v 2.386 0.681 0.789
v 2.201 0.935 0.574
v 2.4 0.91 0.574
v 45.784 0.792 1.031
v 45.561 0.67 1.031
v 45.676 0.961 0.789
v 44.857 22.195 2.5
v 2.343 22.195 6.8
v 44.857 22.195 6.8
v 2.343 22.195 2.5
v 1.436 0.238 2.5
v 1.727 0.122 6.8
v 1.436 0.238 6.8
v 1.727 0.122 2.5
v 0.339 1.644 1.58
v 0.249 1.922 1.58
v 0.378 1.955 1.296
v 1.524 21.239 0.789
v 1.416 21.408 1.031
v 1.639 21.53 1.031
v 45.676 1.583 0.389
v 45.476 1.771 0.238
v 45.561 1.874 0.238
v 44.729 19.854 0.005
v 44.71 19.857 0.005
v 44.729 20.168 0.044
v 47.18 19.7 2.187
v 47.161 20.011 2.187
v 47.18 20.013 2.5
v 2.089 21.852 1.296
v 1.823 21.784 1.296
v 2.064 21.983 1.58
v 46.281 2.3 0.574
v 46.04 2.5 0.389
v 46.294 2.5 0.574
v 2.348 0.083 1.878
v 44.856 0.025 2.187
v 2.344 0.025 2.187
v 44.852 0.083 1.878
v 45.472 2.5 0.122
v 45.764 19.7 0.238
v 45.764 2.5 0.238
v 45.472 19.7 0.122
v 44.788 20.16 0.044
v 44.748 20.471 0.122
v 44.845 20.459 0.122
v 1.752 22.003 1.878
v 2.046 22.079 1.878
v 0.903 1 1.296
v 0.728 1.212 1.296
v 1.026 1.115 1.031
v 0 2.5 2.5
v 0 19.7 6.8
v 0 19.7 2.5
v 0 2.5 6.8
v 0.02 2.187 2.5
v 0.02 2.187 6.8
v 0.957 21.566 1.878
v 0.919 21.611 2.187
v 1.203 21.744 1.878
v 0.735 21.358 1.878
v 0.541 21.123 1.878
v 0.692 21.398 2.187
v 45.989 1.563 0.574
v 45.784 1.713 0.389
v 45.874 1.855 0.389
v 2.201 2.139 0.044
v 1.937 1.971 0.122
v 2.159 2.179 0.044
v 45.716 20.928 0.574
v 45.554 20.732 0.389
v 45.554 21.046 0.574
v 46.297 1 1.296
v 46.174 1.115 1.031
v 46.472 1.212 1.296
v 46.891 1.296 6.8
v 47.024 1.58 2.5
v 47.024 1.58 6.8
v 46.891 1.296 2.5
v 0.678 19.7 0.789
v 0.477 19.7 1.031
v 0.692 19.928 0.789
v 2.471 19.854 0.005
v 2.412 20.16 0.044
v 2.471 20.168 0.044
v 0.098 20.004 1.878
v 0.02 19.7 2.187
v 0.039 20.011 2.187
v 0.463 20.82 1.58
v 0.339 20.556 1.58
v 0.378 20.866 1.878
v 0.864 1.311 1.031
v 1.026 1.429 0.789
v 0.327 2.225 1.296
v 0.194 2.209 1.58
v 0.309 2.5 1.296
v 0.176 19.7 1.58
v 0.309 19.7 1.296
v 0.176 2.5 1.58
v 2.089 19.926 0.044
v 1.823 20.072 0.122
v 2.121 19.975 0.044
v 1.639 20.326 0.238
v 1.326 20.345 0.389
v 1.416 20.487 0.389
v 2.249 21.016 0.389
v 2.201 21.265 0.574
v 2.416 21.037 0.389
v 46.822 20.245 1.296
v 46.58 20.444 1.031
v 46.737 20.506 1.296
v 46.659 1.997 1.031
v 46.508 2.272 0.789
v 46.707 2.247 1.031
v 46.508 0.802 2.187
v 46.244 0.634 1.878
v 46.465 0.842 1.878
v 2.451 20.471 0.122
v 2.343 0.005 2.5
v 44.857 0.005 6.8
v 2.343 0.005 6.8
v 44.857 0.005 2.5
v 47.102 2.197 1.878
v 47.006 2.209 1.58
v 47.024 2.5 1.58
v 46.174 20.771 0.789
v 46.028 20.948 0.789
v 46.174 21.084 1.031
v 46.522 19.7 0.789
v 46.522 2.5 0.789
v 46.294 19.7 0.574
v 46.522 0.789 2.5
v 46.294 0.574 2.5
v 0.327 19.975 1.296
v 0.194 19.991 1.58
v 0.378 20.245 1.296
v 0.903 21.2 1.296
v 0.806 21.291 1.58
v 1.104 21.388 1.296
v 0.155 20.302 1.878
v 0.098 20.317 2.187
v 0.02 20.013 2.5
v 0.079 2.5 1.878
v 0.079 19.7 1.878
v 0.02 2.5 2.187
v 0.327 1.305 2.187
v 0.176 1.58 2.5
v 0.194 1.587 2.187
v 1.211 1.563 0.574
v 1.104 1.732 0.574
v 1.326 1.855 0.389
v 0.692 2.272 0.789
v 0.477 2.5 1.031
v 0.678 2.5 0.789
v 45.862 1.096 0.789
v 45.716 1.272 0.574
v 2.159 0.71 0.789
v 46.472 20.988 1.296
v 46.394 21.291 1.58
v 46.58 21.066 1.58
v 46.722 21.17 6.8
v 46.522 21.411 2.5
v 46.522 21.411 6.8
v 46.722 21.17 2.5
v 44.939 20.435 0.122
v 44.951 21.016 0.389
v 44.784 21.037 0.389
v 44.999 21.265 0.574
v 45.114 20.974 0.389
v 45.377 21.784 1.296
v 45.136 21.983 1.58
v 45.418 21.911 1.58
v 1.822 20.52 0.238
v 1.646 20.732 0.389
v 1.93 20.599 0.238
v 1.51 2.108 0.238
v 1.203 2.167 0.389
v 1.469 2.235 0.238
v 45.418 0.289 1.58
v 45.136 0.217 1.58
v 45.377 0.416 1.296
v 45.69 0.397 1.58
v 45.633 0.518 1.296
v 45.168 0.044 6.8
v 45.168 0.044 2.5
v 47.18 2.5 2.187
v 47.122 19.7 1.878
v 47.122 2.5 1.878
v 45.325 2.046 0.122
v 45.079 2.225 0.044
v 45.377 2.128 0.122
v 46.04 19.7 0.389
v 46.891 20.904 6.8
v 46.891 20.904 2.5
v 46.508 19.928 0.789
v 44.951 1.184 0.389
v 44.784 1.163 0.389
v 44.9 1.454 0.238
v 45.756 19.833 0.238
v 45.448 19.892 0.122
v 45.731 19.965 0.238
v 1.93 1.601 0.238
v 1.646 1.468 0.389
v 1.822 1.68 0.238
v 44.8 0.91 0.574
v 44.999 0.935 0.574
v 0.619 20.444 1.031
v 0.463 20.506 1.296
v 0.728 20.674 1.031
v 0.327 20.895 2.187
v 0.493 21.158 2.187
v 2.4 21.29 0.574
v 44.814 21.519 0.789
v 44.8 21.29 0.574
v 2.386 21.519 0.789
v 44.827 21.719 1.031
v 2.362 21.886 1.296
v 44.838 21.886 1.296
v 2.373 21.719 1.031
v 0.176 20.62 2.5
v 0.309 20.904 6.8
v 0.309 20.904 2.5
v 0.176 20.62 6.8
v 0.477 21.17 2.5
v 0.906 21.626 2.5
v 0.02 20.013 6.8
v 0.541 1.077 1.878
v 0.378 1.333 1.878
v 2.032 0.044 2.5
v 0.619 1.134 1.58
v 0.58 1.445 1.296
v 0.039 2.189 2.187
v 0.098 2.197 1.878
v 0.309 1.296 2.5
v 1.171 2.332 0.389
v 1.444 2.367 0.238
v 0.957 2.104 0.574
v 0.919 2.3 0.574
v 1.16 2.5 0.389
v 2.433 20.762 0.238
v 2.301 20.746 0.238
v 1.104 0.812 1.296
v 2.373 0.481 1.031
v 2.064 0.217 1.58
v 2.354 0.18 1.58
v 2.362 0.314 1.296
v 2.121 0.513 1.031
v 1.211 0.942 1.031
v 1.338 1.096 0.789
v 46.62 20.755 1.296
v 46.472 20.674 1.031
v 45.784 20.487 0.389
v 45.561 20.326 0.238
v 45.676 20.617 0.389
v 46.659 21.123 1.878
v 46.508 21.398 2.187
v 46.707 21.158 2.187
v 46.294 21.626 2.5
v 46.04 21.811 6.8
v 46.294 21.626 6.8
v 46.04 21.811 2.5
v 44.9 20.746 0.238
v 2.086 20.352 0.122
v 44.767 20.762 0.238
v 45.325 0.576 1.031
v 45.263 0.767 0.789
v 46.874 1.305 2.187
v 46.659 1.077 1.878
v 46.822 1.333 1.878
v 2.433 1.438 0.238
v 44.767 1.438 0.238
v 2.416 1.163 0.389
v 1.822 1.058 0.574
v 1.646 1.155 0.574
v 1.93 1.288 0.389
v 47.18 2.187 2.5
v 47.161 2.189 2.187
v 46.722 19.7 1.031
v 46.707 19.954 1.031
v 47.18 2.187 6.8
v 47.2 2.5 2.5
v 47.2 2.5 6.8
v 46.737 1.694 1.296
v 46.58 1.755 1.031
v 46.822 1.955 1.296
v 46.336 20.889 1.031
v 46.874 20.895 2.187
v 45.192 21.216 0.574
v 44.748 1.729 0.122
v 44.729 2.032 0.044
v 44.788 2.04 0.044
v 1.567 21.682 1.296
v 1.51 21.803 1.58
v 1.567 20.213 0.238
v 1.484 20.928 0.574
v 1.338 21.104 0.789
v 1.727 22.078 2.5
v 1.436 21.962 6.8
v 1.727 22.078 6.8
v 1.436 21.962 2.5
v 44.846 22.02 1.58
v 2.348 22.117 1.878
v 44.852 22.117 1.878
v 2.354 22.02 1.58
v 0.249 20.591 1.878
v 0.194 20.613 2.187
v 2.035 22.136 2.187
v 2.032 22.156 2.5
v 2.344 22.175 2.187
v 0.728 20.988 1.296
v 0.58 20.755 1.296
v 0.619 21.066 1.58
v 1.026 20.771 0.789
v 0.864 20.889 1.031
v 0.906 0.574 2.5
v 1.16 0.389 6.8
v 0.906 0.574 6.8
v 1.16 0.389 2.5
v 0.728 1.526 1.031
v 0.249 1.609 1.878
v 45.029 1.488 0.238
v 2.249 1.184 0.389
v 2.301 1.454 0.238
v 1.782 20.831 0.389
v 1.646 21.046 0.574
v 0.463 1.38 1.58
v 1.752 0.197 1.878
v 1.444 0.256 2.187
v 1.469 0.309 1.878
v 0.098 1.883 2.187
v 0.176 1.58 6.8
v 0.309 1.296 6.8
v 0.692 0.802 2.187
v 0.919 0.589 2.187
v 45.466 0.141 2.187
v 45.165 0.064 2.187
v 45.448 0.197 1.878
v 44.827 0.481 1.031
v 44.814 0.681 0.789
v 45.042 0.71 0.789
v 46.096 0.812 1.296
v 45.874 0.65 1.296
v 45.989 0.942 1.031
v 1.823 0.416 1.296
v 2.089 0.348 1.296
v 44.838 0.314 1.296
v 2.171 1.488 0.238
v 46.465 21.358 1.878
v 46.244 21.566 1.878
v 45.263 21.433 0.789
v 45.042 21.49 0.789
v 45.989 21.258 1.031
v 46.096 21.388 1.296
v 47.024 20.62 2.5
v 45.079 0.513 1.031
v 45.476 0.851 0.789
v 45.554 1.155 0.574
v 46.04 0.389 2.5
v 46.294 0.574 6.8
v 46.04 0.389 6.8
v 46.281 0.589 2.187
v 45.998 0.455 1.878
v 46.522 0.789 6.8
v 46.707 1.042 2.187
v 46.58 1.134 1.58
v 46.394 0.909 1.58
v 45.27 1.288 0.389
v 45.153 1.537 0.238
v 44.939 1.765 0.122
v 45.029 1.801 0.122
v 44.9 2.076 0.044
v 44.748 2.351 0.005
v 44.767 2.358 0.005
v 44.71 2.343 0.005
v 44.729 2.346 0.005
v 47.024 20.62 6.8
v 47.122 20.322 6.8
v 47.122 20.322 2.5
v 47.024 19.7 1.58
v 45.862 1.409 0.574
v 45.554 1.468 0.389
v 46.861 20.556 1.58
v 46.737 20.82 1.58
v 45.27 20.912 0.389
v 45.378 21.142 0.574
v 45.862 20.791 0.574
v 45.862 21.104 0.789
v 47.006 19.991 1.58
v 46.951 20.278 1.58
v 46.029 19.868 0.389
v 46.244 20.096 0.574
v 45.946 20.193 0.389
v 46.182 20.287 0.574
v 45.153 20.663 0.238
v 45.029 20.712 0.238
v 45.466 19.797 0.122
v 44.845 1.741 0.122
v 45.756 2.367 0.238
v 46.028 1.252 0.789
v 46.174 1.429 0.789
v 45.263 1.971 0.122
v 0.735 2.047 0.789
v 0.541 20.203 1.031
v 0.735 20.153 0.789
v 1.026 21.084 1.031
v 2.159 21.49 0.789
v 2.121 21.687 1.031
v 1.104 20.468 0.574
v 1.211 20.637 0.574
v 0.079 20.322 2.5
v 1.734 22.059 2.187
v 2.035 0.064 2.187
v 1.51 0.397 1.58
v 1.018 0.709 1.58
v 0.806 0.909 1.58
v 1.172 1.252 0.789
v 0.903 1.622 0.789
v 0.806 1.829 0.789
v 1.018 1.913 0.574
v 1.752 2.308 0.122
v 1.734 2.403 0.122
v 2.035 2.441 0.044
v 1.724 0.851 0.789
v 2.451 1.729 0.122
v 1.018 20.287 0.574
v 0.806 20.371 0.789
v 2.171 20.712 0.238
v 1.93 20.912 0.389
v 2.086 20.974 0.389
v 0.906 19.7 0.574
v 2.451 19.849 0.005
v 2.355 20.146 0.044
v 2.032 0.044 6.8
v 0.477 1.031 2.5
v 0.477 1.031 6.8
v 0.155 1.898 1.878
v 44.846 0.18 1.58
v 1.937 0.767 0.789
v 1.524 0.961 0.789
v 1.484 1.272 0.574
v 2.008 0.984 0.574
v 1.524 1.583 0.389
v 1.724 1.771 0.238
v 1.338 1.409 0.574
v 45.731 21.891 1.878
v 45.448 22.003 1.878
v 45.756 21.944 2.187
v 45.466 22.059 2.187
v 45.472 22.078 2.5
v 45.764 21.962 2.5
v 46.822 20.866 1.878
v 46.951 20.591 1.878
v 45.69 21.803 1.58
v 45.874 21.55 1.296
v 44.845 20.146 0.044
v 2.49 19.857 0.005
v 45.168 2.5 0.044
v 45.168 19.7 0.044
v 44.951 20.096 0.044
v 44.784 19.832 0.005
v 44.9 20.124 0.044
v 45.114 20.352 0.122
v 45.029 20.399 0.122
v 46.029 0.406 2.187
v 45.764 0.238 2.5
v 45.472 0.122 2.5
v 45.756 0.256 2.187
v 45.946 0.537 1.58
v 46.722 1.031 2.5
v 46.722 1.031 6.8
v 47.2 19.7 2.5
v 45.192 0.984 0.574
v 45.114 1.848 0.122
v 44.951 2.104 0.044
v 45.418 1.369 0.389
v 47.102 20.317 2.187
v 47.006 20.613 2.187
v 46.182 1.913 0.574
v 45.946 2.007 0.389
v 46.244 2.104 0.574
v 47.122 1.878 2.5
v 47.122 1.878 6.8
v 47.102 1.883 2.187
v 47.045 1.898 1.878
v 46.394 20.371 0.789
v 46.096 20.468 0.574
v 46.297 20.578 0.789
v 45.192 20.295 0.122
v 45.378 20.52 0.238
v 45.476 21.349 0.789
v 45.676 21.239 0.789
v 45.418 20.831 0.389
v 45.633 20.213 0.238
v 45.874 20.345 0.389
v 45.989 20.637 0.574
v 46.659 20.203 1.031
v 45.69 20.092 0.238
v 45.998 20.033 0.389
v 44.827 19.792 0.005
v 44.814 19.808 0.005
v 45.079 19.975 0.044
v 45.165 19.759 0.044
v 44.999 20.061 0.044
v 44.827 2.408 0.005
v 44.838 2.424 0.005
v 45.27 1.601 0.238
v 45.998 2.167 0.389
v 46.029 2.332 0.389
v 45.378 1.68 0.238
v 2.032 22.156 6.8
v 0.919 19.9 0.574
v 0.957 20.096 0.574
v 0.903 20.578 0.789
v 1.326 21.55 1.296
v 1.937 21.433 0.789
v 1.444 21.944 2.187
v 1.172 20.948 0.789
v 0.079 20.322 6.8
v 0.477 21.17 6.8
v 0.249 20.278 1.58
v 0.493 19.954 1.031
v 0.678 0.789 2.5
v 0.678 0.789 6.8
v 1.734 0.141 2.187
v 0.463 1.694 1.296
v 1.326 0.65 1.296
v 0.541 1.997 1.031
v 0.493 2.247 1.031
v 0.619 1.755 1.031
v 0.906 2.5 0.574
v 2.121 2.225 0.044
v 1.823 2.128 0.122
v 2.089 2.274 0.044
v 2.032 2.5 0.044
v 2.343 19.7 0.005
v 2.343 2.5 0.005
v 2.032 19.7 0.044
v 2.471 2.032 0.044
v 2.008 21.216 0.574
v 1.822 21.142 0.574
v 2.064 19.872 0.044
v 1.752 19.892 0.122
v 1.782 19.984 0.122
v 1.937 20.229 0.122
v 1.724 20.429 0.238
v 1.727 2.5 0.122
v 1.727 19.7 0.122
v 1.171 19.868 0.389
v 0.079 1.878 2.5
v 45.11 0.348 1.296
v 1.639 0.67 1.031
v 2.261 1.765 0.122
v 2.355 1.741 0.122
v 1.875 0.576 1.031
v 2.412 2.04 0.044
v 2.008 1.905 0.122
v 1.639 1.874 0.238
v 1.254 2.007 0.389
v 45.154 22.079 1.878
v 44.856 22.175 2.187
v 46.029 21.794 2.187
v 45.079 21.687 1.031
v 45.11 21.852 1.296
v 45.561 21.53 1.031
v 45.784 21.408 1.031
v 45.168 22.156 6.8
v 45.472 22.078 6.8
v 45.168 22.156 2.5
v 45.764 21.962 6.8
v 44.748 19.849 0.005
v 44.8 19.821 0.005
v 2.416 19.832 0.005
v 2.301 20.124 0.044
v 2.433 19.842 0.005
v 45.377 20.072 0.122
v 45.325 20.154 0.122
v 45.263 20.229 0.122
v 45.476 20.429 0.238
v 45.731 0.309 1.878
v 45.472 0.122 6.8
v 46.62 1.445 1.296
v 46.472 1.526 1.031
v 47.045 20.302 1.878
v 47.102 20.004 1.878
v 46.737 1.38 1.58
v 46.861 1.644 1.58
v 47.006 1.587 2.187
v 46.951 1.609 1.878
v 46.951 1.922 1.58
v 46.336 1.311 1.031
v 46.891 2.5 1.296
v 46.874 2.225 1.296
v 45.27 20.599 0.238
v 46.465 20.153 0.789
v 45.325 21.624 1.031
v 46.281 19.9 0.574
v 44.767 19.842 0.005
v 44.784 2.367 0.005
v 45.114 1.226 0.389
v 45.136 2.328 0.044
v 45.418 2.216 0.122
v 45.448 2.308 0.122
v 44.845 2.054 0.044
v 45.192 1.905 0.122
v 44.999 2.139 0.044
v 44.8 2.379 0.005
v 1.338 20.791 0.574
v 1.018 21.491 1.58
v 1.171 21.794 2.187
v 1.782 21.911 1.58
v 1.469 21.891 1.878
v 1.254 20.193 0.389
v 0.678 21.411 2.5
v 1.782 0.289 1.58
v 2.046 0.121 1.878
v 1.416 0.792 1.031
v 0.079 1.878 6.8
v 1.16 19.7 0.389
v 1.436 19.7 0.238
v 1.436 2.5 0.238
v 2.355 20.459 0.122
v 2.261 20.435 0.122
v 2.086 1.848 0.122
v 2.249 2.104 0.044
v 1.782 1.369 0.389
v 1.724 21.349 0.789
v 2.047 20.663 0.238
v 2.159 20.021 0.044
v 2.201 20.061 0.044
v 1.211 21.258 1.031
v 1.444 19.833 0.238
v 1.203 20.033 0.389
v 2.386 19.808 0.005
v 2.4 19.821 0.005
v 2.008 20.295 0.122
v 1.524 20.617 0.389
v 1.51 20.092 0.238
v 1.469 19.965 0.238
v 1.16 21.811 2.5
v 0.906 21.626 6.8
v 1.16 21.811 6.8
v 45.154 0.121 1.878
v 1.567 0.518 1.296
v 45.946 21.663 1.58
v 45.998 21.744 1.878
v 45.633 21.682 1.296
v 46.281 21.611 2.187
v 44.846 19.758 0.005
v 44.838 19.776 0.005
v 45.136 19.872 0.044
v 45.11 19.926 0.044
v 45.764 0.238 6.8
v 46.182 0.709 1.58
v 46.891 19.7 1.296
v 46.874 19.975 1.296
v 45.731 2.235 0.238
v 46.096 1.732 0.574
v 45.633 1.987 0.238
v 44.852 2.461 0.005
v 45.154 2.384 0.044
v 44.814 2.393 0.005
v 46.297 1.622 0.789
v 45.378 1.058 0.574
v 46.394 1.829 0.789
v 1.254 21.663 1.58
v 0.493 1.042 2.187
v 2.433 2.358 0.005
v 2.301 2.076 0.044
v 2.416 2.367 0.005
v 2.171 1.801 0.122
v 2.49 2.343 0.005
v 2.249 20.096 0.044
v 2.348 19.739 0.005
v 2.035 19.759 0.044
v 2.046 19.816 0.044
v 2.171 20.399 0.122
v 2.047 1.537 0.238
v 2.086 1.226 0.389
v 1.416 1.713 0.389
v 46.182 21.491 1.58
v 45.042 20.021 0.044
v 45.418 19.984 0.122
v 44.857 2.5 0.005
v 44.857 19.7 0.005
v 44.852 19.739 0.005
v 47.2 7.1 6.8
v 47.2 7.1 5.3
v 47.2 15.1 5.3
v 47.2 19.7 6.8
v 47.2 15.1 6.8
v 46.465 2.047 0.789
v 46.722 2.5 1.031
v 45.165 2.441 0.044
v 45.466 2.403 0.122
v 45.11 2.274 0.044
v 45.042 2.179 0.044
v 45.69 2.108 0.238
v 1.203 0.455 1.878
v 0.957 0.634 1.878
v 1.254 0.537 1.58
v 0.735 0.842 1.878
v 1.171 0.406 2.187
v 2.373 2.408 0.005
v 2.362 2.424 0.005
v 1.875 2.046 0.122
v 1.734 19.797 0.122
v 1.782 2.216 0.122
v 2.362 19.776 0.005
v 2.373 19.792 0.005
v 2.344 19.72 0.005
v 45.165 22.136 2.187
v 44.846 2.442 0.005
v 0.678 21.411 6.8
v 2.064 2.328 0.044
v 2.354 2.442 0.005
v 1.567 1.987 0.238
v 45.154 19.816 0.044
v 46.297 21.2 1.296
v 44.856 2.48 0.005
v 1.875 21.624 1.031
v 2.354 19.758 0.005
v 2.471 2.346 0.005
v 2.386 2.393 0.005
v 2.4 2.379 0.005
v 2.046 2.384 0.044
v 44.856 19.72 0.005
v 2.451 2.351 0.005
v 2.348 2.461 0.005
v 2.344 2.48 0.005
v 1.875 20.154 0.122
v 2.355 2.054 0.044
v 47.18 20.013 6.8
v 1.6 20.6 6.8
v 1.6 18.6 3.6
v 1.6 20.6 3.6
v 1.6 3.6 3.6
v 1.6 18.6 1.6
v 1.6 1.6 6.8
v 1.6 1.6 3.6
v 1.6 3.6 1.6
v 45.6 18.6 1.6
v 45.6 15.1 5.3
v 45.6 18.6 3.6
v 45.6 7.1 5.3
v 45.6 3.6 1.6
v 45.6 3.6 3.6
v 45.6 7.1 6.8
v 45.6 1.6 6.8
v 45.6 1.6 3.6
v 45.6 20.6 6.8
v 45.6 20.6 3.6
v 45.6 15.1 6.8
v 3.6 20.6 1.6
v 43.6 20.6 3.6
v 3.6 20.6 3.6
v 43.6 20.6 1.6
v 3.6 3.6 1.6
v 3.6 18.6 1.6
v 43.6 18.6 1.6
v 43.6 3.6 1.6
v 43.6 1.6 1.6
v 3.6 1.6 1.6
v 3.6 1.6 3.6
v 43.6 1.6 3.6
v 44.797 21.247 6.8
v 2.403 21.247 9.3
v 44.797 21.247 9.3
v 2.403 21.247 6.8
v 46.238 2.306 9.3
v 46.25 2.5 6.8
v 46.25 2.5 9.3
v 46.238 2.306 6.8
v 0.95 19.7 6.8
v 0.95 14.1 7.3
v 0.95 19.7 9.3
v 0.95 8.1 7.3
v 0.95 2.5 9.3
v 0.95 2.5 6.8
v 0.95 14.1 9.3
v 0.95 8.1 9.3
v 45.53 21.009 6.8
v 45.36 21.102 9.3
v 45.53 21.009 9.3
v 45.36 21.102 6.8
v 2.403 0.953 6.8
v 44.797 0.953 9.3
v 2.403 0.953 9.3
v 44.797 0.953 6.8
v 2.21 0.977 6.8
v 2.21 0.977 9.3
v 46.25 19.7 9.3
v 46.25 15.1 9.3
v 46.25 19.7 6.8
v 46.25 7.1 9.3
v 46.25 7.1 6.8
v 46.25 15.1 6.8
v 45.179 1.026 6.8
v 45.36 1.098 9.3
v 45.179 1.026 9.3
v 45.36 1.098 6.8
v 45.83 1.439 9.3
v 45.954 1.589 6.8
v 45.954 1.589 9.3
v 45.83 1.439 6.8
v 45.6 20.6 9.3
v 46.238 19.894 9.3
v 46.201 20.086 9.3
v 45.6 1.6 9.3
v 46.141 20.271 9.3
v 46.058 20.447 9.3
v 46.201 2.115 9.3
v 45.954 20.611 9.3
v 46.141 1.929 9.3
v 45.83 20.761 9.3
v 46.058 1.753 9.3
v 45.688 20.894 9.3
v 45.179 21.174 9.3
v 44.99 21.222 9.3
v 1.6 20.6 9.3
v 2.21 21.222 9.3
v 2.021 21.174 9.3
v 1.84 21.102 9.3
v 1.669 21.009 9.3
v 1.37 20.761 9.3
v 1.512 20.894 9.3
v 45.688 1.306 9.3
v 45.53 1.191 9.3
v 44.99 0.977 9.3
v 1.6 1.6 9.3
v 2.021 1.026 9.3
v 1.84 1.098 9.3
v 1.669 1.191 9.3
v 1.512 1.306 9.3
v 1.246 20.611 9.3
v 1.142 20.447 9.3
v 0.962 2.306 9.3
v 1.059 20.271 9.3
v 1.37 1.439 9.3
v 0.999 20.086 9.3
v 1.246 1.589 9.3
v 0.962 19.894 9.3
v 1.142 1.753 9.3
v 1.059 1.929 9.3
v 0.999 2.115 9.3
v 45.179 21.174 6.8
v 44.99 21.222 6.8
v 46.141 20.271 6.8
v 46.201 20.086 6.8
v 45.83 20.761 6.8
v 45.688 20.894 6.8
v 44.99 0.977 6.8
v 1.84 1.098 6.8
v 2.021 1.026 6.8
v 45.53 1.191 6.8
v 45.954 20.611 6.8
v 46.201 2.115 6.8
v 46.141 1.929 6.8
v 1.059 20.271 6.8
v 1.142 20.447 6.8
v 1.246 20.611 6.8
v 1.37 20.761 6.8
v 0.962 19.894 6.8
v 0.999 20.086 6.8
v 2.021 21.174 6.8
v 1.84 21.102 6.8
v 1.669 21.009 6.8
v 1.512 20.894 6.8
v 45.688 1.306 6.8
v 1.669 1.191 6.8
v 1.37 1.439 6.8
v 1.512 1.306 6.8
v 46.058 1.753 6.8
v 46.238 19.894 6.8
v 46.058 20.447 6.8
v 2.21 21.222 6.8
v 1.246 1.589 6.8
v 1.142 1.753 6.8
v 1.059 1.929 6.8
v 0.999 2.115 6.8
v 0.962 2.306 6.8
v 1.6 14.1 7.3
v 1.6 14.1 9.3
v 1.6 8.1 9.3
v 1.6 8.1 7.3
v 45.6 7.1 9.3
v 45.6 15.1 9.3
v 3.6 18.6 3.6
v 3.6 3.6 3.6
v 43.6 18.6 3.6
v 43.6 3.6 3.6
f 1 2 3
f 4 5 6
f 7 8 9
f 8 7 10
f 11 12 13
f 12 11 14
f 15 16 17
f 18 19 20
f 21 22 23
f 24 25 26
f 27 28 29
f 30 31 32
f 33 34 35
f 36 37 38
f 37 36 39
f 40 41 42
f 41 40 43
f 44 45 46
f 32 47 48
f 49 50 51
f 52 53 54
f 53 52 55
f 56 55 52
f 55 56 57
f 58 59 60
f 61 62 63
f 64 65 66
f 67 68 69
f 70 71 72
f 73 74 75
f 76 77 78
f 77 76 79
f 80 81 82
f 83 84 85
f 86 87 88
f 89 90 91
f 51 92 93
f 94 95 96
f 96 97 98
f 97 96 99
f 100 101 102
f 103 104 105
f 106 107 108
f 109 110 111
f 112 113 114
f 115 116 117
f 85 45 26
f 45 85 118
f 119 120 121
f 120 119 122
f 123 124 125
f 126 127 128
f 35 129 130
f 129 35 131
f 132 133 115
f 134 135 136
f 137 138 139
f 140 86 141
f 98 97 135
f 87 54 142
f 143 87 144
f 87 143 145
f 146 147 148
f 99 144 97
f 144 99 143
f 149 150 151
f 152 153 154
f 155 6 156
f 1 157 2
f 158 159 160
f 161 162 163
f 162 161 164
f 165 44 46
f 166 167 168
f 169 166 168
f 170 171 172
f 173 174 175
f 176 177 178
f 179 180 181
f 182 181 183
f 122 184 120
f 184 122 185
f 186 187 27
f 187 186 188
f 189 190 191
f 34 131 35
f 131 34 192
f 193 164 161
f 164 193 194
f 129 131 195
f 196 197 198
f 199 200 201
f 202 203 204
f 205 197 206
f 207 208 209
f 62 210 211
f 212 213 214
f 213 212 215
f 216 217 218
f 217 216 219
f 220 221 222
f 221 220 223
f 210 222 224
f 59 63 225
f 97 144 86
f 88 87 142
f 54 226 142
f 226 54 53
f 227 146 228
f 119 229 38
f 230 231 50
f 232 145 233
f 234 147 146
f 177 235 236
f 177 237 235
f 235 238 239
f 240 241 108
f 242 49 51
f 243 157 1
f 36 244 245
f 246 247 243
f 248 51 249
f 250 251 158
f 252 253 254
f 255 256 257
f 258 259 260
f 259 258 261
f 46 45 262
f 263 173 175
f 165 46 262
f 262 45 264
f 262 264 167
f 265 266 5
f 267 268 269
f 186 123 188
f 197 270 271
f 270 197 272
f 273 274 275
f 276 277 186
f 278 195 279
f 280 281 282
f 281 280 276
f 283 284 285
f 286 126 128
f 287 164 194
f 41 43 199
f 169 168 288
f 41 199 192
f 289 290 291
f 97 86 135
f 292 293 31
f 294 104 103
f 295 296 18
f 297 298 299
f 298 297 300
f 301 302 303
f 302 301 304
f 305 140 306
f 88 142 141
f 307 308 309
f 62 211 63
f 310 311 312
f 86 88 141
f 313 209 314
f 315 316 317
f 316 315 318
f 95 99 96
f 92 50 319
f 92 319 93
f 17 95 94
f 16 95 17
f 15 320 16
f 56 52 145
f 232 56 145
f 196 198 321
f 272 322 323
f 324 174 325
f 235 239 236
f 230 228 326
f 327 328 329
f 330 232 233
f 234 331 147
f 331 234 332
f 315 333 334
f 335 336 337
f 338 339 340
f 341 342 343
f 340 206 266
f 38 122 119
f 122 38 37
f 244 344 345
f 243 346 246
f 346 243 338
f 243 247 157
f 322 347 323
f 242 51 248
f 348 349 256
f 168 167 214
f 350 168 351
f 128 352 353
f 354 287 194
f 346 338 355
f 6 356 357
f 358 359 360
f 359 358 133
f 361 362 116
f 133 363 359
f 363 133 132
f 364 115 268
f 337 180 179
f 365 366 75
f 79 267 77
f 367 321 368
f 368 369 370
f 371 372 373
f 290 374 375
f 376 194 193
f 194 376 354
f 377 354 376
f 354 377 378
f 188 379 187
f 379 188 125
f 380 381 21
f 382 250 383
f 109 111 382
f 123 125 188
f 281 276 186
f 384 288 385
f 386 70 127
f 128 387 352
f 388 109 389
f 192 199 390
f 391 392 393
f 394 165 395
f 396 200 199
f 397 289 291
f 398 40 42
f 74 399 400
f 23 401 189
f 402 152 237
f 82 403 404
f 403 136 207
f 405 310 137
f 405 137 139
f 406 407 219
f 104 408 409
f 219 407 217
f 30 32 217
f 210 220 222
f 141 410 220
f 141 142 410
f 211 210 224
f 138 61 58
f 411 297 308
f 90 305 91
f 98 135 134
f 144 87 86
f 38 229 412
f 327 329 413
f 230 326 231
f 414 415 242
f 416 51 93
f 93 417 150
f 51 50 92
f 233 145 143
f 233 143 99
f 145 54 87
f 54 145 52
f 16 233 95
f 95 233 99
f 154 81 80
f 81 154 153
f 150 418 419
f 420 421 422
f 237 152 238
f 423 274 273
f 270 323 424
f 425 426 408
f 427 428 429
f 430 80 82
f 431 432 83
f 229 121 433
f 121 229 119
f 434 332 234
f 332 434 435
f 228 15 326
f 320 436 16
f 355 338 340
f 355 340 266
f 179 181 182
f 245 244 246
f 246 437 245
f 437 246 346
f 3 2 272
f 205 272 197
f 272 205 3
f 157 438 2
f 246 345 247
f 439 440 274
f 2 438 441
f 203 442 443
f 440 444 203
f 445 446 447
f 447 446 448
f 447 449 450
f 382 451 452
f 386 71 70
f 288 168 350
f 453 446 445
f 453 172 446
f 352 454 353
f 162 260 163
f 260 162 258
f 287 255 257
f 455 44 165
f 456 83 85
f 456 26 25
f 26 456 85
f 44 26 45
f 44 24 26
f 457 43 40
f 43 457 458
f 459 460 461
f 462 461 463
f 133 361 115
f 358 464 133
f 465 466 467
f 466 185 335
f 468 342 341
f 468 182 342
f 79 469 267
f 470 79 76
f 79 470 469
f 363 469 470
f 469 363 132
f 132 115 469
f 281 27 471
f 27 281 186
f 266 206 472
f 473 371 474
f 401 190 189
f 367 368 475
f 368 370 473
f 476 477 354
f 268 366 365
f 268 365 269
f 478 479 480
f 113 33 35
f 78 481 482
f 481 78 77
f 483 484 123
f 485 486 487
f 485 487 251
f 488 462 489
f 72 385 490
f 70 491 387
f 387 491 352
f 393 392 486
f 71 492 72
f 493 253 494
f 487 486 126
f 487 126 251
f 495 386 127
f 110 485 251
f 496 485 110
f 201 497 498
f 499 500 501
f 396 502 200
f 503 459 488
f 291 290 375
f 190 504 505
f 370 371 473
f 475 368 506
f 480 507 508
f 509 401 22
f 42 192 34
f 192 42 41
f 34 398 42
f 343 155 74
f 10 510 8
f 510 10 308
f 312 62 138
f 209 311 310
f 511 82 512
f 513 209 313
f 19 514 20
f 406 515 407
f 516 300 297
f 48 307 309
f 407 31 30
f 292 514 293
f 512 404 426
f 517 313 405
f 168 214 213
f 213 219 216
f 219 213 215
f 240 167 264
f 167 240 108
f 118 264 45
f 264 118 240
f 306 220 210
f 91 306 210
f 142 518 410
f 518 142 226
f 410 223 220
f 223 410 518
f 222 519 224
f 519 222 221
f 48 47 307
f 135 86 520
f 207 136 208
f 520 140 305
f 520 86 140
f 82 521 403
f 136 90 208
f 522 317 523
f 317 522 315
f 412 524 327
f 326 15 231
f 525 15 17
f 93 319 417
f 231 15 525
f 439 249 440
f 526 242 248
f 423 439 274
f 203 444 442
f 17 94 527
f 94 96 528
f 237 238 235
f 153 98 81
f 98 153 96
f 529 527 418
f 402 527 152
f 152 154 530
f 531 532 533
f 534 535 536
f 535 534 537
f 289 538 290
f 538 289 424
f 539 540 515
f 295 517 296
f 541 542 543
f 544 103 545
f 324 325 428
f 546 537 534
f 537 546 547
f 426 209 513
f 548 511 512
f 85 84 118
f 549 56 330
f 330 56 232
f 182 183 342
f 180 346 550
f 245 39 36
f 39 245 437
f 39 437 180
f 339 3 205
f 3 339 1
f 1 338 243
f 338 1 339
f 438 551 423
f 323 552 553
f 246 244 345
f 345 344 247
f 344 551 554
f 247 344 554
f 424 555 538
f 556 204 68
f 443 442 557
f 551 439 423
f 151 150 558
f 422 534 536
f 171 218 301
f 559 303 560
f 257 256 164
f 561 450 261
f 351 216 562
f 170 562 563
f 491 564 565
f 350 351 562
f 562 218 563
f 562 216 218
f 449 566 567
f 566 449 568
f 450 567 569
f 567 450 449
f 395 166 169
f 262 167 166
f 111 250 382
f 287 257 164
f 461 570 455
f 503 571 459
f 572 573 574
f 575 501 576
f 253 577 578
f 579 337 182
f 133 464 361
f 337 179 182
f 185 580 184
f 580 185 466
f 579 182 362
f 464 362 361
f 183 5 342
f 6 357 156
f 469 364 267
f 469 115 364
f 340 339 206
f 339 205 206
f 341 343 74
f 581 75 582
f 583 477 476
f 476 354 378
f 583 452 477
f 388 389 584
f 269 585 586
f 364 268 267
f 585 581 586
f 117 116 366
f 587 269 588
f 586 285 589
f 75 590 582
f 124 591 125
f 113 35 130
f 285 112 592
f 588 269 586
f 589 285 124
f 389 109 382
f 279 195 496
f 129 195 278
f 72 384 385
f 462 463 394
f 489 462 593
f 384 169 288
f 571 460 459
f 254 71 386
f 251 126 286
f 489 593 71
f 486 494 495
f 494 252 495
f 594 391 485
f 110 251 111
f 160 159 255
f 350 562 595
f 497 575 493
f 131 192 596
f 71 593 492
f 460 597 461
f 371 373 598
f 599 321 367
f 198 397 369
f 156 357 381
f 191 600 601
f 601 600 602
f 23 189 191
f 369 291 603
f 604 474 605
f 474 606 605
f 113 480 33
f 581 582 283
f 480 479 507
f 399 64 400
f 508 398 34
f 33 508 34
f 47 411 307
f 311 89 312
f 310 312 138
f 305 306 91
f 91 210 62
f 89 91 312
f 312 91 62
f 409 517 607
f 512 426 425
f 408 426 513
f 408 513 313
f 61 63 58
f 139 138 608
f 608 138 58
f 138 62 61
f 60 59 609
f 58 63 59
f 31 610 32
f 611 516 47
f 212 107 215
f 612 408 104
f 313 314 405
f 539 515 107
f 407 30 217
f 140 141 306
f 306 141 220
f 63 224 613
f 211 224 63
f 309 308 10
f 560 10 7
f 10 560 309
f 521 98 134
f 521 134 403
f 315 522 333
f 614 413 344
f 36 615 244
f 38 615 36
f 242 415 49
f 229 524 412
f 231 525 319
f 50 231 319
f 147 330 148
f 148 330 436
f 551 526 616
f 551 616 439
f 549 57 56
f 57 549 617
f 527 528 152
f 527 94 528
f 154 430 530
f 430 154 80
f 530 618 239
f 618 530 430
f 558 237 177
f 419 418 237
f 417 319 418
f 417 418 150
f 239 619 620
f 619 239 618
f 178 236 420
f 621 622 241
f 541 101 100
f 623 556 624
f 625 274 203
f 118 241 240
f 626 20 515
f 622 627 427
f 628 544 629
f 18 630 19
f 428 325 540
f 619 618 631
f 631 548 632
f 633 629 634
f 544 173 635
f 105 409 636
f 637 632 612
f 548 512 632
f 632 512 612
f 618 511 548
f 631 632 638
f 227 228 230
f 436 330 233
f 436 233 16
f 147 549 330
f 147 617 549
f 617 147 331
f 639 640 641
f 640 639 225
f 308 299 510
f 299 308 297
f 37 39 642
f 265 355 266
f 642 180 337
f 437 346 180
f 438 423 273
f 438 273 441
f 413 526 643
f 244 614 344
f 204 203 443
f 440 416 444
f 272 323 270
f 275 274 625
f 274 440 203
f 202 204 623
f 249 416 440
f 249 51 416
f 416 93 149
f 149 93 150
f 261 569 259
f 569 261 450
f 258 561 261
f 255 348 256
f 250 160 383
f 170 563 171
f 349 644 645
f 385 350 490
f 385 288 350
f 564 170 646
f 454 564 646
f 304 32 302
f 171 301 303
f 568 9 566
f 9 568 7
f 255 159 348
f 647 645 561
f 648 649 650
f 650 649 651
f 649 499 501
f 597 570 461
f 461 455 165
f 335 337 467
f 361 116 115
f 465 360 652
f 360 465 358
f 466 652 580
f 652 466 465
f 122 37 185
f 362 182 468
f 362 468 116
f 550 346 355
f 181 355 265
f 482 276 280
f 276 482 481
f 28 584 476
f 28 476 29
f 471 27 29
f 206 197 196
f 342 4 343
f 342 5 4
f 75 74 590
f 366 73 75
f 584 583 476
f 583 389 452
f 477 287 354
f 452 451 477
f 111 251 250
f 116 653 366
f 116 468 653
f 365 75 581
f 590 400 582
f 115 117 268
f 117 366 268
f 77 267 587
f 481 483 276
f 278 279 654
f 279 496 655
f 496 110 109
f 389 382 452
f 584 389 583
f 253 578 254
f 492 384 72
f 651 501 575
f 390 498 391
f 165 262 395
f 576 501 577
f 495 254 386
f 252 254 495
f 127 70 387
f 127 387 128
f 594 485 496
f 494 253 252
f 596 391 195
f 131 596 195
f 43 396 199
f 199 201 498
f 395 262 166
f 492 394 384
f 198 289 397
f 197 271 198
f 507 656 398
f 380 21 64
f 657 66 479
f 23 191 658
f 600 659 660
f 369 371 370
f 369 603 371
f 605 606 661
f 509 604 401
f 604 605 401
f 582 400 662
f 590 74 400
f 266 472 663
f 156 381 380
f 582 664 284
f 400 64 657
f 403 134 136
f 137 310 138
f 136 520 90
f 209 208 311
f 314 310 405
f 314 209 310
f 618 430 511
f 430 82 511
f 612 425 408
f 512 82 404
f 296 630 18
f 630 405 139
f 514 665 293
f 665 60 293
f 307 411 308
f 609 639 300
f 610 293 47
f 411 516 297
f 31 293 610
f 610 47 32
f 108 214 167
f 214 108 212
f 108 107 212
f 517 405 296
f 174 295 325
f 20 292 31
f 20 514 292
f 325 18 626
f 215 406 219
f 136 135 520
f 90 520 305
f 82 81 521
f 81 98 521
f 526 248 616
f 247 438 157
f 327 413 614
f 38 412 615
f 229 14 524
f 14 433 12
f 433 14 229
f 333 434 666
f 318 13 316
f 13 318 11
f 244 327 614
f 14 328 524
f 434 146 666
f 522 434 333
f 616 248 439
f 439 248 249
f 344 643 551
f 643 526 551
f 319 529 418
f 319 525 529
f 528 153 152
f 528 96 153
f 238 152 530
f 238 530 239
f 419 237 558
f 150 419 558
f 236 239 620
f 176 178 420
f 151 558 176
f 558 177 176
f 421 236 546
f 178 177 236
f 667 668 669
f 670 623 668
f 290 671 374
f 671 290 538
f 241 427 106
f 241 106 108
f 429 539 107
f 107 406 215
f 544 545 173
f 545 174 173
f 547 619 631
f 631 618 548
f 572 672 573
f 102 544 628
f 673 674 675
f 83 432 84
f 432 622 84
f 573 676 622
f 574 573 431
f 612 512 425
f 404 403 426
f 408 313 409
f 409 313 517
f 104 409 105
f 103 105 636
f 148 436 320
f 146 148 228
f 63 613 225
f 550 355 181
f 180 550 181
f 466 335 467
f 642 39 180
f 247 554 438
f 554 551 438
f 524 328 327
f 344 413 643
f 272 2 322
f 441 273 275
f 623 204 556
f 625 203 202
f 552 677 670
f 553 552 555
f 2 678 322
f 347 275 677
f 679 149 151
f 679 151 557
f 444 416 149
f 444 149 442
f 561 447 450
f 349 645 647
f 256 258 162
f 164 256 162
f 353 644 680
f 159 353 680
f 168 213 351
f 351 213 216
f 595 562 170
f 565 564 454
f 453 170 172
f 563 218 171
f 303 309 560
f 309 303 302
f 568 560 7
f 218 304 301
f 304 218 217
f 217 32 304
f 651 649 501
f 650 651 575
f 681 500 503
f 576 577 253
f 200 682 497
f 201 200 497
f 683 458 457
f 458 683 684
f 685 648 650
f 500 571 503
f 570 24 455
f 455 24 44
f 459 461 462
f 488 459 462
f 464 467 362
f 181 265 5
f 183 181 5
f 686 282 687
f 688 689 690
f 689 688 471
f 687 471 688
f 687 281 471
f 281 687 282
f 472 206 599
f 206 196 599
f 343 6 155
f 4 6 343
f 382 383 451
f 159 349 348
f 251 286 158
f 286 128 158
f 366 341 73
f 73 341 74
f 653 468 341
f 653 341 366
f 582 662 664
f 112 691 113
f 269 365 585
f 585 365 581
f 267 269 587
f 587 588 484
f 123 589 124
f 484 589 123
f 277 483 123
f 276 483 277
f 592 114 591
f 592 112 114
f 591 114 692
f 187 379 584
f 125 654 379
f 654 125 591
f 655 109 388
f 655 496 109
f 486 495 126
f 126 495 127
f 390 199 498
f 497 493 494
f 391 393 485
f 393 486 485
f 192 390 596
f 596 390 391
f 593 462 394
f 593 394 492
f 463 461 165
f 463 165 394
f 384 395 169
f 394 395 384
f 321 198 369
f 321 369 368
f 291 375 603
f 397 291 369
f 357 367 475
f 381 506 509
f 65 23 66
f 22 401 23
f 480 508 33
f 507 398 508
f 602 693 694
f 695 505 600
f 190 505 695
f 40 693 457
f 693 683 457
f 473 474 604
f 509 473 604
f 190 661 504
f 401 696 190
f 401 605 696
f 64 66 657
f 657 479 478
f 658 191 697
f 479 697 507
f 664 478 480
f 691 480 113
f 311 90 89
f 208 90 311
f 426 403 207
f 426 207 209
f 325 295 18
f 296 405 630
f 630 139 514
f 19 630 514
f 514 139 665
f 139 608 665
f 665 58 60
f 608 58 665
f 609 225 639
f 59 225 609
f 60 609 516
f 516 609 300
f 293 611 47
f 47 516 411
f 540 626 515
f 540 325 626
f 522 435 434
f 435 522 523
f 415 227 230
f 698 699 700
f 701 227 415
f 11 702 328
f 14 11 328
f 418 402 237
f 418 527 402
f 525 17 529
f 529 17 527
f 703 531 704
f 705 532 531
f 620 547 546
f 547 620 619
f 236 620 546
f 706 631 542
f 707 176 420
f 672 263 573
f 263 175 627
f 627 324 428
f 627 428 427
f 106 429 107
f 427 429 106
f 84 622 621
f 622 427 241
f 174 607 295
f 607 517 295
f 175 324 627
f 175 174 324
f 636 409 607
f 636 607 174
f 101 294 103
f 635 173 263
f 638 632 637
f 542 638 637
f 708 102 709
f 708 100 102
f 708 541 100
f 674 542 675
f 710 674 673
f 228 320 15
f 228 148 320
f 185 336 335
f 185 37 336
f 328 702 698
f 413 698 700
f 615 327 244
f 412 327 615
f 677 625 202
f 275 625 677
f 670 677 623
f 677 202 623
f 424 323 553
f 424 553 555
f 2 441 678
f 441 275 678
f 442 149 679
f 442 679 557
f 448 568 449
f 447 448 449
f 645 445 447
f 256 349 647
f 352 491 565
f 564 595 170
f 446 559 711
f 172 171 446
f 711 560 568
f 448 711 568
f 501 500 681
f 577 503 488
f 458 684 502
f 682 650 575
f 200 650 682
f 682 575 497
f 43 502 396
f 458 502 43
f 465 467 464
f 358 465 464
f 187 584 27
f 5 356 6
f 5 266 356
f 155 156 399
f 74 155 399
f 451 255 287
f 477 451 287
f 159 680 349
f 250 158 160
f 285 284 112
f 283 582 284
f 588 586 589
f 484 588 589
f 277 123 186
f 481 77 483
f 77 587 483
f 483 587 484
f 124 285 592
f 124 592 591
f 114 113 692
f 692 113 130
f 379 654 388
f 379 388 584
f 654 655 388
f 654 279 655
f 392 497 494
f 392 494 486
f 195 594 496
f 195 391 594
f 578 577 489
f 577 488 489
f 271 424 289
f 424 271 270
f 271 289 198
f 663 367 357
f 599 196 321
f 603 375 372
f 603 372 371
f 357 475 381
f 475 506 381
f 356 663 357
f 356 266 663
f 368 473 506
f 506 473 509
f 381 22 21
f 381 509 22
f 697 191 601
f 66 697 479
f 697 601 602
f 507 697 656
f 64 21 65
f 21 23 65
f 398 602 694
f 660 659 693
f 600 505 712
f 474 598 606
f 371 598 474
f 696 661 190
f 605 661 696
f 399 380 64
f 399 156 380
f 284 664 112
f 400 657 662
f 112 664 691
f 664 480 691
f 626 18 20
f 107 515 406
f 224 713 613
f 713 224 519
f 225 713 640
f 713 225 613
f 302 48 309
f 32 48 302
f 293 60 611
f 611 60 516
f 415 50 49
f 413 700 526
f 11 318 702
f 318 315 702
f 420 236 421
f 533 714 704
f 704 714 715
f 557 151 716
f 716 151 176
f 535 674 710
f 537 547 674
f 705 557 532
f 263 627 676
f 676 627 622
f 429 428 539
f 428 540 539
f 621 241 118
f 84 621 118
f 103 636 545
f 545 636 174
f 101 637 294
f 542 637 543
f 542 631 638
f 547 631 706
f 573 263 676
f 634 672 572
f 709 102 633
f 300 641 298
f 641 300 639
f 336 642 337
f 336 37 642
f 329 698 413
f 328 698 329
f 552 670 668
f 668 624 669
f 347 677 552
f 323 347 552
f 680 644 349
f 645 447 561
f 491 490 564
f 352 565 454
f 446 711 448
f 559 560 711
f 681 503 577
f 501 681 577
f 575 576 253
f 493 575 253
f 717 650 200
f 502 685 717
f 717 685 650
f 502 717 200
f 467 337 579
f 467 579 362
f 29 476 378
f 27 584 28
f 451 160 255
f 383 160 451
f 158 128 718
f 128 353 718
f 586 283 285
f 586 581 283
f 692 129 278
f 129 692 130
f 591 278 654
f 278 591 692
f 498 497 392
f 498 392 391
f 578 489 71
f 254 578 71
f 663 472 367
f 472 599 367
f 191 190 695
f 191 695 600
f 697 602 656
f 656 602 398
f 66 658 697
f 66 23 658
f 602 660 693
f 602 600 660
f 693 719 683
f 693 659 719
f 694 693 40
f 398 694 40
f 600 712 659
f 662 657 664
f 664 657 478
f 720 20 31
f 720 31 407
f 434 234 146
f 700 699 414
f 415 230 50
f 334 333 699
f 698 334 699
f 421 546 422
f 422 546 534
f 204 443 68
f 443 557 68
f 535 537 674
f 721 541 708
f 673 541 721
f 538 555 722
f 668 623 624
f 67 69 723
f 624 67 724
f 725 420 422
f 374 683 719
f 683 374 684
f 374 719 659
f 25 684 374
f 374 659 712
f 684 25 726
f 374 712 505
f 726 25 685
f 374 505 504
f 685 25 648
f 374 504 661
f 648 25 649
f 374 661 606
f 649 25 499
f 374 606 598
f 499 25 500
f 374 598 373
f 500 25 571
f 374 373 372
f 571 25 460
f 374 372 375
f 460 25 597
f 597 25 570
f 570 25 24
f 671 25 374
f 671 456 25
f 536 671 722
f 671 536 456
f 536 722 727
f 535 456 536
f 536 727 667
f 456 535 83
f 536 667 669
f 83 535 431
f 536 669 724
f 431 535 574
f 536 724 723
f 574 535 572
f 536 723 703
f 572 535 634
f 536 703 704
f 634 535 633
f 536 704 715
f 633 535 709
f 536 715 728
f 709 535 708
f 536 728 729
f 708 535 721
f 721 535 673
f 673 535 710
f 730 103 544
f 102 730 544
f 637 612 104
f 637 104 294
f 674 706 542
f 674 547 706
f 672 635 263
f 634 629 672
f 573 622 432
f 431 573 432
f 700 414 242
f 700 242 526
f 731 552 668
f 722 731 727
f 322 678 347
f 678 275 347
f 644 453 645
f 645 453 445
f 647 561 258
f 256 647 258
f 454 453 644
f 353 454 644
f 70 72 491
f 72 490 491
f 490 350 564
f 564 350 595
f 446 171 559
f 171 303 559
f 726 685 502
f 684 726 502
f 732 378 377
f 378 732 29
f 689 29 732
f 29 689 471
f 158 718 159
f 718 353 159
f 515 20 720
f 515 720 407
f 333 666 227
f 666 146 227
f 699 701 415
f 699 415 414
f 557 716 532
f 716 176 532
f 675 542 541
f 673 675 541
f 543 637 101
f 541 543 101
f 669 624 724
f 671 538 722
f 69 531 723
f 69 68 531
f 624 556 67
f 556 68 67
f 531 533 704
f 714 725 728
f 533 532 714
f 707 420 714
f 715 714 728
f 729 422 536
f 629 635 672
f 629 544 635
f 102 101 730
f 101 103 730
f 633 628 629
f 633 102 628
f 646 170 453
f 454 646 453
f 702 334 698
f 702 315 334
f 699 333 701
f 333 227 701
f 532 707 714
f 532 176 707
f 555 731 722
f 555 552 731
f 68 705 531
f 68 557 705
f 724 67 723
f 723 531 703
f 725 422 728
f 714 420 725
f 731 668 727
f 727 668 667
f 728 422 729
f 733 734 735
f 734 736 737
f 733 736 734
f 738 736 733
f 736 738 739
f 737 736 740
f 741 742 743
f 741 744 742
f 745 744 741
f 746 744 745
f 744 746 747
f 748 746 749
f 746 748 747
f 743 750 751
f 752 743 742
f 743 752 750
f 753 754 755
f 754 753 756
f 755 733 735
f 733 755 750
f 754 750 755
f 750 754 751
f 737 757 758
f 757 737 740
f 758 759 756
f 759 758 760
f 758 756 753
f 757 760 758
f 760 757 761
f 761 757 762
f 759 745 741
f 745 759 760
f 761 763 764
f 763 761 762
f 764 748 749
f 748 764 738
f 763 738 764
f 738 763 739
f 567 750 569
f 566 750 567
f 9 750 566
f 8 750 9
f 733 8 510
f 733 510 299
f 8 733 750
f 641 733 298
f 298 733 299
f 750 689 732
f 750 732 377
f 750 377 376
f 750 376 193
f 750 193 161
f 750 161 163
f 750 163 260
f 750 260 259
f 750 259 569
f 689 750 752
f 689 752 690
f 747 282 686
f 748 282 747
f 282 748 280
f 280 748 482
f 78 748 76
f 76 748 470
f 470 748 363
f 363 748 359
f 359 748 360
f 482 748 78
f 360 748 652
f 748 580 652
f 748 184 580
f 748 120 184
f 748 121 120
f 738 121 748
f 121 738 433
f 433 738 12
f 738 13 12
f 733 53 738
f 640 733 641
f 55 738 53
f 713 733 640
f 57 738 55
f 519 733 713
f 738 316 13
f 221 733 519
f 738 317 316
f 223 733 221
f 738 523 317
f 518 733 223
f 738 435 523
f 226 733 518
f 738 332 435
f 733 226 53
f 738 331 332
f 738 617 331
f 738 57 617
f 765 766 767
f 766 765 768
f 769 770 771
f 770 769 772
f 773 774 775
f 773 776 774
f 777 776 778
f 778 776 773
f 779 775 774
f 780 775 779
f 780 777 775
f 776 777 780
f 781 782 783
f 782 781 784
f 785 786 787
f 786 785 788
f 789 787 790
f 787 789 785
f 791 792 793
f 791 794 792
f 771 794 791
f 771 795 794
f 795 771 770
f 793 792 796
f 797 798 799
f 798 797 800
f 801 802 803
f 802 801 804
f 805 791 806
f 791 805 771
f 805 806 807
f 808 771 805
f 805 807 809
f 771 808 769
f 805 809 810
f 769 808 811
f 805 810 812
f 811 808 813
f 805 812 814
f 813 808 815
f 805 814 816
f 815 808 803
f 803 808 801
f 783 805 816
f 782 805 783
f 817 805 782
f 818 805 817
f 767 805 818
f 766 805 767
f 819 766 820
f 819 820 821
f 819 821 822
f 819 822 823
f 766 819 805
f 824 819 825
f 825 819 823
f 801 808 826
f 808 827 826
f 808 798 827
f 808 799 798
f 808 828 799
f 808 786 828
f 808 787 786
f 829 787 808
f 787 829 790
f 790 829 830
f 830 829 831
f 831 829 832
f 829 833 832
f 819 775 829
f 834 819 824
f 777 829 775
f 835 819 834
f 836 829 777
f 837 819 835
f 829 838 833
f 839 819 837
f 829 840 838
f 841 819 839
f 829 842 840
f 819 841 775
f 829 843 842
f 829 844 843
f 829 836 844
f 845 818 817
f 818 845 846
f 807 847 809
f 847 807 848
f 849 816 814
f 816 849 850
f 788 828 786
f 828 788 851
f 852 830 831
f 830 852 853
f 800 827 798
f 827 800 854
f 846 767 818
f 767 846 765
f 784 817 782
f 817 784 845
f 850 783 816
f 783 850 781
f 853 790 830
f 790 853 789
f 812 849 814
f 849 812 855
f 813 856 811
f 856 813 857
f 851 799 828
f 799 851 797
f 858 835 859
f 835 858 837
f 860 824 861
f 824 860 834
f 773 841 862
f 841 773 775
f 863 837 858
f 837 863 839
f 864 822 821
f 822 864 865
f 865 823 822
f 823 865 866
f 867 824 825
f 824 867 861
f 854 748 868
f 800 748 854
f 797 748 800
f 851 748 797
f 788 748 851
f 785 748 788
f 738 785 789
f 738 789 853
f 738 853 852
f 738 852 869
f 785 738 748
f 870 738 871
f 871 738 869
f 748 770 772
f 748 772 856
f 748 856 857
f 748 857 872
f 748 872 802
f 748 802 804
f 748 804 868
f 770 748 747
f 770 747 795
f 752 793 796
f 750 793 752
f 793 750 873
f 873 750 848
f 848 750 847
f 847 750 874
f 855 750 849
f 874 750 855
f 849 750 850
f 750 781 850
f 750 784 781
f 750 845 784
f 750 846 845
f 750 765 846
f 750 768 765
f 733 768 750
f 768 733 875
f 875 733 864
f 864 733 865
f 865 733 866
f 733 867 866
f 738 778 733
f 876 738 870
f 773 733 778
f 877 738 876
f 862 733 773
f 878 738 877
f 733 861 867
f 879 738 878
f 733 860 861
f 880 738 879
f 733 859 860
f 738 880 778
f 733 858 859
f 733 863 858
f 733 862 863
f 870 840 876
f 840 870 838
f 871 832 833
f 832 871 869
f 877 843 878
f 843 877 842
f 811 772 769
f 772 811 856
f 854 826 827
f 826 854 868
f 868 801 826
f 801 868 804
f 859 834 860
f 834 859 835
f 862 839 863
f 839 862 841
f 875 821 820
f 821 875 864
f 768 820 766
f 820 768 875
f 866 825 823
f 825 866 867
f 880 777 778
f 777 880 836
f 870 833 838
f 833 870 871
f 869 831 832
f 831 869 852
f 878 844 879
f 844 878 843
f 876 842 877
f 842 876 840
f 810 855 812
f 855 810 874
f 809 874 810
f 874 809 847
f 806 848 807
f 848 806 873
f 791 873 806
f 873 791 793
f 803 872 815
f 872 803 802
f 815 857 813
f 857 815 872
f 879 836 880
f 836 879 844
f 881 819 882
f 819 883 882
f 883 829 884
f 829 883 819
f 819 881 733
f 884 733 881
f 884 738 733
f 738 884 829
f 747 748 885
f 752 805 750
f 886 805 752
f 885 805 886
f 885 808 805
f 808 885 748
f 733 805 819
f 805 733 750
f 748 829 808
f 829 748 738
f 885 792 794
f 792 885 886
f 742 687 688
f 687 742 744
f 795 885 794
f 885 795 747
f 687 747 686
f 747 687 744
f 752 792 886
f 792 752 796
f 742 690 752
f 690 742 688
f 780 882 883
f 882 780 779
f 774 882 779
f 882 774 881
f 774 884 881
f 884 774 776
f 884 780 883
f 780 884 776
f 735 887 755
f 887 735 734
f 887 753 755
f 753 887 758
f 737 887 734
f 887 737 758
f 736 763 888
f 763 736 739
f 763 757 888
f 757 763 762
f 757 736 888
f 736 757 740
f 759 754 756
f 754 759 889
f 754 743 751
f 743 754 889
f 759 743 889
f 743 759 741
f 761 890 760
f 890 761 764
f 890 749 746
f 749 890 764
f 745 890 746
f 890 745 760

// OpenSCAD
//
//  Christmas Lights
//  part of Let's make series
//
//  The Cave, 2017
//  https://thecave.cz
//
//  Licensed under MIT License (see LICENSE file for details)
//

$innerX = 44;
$innerY = 19;
$outerZ = 9.3;
$wall = 1.6;
$outerDia = 5;
$dentZ = 2.5;

$usbWidth = 8;
$usbHeight = 4;
$usbY = $outerZ-$wall-$usbHeight;
$usbX = ($innerY-$usbWidth)/2;

$cableWidth = 6;
$cableHeight = 2;
$cableY = $outerZ-$wall-$cableHeight;
$cableX = ($innerY-$cableWidth)/2;

$spacerSize = 2;
$spacerHeight = 2;


module base() {
    difference() {
        translate([$outerDia/2,$outerDia/2,$outerDia/2]) minkowski() {
            sphere(d=$outerDia,$fn=50);
            cube([$innerX+$wall*2-$outerDia,$innerY+$wall*2-$outerDia,$outerZ+$outerDia*2]);
        }
        translate([$wall,$wall,$wall]) cube([$innerX,$innerY,$outerZ*2]);
        translate([-1,-1,$outerZ-$dentZ]) cube([$innerX*2,$innerY*2,$outerZ*2]);
    }
}

module dent() {
    translate([$outerDia/2,$outerDia/2,$outerZ-$dentZ]) difference() {
        minkowski() {
            cube([$innerX+$wall-($outerDia-$wall),$innerY+$wall-($outerDia-$wall),$dentZ/2]);
            cylinder(d=$outerDia-$wall-0.3,h=$dentZ/2,$fn=50);
        }
        translate([-$outerDia/2+$wall,-$outerDia/2+$wall,-1]) cube([$innerX,$innerY,$dentZ+2]);
    }
}


difference() {
    union() {
        base();
        dent();
    }
    translate([$innerX+$wall-1,$wall+$usbX,$wall+$usbY]) cube([$wall+2,$usbWidth, $usbHeight]);
    translate([-1,$wall+$cableX,$wall+$cableY]) cube([$wall+2,$cableWidth, $cableHeight]);
}

translate([$wall,$wall+$innerY-$spacerSize,$wall]) cube([$spacerSize, $spacerSize, $spacerHeight]);
translate([$wall,$wall,$wall]) cube([$spacerSize, $spacerSize, $spacerHeight]);
translate([$wall+$innerX-$spacerSize,$wall+$innerY-$spacerSize,$wall]) cube([$spacerSize, $spacerSize, $spacerHeight]);
translate([$wall+$innerX-$spacerSize,$wall,$wall]) cube([$spacerSize, $spacerSize, $spacerHeight]);
